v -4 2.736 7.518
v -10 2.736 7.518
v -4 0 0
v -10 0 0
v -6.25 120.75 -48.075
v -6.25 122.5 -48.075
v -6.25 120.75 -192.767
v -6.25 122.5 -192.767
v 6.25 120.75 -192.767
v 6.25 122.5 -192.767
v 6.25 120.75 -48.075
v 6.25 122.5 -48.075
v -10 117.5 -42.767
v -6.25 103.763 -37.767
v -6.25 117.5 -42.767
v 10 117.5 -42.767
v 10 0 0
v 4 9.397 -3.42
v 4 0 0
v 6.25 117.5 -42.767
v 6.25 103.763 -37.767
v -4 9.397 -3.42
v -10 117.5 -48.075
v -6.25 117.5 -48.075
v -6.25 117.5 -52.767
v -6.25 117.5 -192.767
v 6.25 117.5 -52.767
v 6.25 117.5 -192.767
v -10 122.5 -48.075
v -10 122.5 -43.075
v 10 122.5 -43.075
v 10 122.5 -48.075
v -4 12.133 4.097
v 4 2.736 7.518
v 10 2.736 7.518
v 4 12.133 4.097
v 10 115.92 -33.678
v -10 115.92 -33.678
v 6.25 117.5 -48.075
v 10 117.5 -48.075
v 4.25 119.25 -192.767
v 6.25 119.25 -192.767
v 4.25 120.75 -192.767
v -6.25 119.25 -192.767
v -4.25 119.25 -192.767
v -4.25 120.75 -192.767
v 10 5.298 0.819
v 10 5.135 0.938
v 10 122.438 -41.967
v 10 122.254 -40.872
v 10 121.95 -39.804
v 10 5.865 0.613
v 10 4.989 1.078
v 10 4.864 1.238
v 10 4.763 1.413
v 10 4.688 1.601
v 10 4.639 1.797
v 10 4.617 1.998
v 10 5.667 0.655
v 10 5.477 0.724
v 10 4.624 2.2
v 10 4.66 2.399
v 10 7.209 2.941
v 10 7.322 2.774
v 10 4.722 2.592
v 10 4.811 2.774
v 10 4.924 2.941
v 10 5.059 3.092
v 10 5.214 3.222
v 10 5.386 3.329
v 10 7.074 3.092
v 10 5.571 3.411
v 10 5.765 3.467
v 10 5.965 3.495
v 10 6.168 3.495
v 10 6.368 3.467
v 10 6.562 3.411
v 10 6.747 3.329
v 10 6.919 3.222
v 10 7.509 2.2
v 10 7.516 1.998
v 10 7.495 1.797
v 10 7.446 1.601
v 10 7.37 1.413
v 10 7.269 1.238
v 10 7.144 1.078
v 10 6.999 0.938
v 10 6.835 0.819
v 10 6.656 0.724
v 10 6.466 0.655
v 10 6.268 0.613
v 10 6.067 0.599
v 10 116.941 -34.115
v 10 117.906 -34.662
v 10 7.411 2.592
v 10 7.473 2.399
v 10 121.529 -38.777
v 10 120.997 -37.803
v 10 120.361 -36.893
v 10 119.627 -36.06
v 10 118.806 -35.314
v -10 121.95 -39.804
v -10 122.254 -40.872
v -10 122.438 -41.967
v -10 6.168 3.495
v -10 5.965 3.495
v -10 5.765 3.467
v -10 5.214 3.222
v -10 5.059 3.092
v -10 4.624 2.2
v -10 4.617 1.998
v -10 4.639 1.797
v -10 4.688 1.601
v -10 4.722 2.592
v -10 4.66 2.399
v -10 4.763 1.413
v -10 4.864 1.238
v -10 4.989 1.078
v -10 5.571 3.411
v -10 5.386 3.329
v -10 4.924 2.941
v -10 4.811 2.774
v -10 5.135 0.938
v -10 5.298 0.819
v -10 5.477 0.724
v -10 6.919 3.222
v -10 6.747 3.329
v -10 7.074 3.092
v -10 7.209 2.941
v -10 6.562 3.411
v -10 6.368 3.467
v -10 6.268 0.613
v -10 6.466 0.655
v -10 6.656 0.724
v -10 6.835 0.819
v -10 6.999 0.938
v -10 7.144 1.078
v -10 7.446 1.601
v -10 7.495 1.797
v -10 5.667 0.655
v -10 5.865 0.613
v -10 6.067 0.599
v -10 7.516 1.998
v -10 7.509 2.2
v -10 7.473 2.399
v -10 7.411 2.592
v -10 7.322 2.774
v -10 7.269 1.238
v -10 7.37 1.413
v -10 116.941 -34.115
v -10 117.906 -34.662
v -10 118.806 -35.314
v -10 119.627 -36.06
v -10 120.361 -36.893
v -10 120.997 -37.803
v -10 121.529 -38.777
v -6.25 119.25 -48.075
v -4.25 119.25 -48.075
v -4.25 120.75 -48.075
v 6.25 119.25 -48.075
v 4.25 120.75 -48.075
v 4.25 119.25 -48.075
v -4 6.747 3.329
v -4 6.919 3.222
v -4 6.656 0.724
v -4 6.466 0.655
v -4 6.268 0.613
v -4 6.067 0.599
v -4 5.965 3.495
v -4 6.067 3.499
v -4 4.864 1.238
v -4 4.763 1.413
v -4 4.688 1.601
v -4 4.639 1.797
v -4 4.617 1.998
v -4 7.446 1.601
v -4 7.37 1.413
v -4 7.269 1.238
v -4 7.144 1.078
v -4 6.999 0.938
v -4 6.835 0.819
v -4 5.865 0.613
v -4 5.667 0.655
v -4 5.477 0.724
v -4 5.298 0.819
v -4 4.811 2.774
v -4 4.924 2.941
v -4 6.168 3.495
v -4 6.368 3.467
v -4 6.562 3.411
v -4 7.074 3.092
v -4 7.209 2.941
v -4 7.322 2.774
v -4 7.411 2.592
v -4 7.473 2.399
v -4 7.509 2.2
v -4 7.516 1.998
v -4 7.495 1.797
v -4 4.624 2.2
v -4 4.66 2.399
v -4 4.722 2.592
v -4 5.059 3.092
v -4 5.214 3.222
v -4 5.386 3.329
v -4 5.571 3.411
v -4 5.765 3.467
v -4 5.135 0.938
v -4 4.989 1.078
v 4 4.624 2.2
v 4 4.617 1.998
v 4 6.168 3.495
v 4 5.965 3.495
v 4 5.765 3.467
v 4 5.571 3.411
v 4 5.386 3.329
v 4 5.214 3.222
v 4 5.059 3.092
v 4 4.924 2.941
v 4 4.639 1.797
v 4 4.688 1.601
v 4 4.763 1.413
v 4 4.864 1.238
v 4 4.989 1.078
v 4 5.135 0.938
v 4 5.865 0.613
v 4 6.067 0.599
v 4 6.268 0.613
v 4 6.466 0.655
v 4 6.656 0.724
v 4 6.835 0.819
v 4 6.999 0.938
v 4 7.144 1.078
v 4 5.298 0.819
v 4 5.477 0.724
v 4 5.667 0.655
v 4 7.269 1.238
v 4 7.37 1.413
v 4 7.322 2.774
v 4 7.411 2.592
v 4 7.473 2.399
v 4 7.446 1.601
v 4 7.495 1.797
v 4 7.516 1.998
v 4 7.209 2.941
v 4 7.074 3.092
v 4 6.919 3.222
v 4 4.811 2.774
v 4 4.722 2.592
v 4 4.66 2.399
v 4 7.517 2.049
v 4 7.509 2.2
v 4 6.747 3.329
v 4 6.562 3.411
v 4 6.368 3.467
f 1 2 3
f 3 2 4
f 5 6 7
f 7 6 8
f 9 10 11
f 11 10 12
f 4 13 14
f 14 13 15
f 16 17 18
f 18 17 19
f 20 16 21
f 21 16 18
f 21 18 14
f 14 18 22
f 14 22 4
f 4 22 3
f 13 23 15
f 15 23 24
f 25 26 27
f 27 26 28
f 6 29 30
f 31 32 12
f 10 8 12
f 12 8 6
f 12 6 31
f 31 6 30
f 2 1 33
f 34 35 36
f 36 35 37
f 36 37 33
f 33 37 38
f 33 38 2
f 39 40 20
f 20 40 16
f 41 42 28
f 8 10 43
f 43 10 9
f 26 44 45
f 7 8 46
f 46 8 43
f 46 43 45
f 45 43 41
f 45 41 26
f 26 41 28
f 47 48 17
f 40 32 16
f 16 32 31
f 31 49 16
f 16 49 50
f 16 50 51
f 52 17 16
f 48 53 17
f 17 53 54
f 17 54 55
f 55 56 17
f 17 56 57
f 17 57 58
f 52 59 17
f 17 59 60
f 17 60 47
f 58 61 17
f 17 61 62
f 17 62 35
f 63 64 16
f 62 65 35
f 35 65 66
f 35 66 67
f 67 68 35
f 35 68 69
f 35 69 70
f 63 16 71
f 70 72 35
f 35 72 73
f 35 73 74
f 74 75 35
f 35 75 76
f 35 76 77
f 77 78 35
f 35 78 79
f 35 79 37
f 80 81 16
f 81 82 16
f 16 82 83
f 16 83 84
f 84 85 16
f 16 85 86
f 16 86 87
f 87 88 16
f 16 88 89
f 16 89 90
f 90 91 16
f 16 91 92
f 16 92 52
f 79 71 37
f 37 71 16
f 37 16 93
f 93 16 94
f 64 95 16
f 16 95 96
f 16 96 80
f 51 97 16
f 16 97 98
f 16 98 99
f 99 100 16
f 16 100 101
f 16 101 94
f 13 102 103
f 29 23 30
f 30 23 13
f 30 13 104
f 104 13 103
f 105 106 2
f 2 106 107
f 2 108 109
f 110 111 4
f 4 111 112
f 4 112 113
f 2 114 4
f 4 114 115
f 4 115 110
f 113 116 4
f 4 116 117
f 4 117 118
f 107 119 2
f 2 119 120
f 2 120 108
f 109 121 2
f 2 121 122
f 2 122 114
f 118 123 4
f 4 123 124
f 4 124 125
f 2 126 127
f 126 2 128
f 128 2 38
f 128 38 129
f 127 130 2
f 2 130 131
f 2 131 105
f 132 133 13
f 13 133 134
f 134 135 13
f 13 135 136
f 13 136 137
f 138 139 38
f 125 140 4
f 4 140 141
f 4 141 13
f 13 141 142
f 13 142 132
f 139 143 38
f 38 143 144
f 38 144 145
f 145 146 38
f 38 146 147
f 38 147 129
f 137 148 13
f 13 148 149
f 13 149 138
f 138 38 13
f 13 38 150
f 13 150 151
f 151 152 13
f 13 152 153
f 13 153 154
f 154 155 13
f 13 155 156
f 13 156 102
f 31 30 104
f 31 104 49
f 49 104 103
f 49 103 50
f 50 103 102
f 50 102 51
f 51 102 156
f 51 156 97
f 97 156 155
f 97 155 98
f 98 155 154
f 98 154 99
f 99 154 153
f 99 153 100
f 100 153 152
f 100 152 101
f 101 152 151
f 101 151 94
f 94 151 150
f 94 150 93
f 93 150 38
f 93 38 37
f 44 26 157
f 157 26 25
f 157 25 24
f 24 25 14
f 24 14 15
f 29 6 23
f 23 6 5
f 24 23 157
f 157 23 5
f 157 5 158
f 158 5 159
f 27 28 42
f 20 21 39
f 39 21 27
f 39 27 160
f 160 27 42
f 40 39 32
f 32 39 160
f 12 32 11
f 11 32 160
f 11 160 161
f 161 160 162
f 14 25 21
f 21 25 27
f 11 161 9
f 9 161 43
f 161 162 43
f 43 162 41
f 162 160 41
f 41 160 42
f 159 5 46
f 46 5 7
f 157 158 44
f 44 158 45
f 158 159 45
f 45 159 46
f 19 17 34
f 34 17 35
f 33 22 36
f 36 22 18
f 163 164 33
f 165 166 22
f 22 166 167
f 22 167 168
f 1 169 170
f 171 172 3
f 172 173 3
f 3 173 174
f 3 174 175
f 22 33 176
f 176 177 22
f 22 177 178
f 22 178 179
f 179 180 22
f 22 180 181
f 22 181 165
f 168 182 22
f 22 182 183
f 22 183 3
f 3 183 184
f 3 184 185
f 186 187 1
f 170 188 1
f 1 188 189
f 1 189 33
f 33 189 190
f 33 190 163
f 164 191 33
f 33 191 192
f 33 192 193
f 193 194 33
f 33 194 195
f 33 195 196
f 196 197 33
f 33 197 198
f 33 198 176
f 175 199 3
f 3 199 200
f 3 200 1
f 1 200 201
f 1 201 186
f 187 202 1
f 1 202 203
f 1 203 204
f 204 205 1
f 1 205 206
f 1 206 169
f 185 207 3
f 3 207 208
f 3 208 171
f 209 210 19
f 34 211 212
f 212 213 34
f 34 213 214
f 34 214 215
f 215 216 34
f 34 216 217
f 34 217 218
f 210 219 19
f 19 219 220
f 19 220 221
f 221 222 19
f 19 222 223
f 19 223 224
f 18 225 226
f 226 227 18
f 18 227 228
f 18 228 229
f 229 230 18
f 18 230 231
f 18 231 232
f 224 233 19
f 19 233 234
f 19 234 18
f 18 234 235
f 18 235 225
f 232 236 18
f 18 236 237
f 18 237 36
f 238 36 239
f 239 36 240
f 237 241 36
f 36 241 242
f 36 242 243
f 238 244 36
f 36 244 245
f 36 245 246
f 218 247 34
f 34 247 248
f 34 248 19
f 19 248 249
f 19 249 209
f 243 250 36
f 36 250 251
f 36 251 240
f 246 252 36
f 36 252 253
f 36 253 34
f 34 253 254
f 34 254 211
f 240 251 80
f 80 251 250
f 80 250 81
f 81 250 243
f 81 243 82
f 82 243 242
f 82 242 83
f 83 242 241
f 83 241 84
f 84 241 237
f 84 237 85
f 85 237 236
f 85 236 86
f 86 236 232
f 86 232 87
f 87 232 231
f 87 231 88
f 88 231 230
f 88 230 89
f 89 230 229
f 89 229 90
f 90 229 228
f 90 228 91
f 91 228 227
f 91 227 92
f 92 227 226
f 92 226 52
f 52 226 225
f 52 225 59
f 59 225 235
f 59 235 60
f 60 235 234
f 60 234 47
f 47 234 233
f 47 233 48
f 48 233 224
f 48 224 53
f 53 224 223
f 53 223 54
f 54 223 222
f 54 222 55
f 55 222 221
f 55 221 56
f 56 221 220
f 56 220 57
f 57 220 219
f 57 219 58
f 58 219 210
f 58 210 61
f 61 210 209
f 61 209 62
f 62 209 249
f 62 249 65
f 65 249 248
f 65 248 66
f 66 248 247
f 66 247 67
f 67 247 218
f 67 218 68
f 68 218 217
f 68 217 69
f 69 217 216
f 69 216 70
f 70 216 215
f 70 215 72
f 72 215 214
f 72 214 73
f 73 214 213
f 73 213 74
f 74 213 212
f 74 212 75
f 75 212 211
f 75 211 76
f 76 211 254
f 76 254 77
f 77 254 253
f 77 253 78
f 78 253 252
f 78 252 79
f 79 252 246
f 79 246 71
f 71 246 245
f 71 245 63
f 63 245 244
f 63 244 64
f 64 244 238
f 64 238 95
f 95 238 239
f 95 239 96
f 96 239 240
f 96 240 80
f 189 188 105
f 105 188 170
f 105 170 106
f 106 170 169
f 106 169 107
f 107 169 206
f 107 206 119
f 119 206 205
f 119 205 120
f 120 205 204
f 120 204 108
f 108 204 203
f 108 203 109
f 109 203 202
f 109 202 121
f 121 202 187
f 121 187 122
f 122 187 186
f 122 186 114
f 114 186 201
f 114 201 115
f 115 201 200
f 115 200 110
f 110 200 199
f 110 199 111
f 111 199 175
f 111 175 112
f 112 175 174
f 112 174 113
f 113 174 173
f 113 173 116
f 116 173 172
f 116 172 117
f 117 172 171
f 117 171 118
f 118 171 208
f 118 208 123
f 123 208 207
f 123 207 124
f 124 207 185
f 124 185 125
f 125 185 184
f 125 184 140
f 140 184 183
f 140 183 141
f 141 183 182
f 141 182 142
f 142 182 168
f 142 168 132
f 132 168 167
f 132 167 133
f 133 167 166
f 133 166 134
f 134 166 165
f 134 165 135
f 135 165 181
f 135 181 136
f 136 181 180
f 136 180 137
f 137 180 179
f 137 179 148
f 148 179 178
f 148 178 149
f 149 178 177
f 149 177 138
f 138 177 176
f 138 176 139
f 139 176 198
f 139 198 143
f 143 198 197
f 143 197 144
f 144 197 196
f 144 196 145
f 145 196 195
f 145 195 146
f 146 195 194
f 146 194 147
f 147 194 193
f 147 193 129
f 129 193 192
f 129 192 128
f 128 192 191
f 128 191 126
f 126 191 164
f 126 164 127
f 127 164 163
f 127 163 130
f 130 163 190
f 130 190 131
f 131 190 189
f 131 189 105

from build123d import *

# Parameters (mm, degrees)
BOSS_EXTRUDE1_DEPTH = 10
CHAMFER1_SIZE       = 7.802060087
CHAMFER1_SIZE_2     = 10
BOSS_EXTRUDE2_DEPTH = 20
SKETCH7_R           = 1.5
CUT_EXTRUDE1_DEPTH  = 20
CUT_EXTRUDE3_DEPTH  = 20
FILLET5_R           = 20
FILLET6_R           = 10
SKETCH10_W          = 5.3
SKETCH10_H          = 4.24
CUT_EXTRUDE4_DEPTH  = 273.805653344
SKETCH11_W          = 3.75
SKETCH11_H          = 144.691495626
CUT_EXTRUDE5_DEPTH  = 370.011076387
BOSS_EXTRUDE4_DEPTH = 12.5
SKETCH12_W          = 2
SKETCH12_H          = 1.5
CUT_EXTRUDE6_DEPTH  = 144.691496
CUT_EXTRUDE7_DEPTH  = 273.805653344
SKETCH15_W          = 8
SKETCH15_H          = 10
CUT_EXTRUDE8_DEPTH  = 234.574560204
SKETCH16_R          = 1.45
CUT_EXTRUDE9_DEPTH  = 230.270963046


with BuildPart() as part:
    # Sketch2 → Boss-Extrude1 (new, symmetric)
    with BuildSketch(Plane(origin=(0, 0, 0), x_dir=(0, 0, -1), z_dir=(1, 0, 0))):
        Polygon((36.072931518, 122.5), (-51.279924706, -117.5), (-51.279924706, -192), (-46.279924706, -192), (-46.279924706, -151.5), (-39.679924706, -151.5), (-39.679924706, -192), (-35.679924706, -192), (-35.679924706, -117.5), (-42.766502526, -117.5), (42.766502526, 117.5), (192.766502526, 117.5), (192.766502526, 122.5), align=None)
    extrude(amount=BOSS_EXTRUDE1_DEPTH, both=True)

    # Chamfer1
    # the kernel refuses this chamfer: 10, 7.802060087 mm, written as the material it adds along each edge
    with BuildSketch(Plane(origin=(-10, -117.5, 42.766502526), x_dir=(0, 0.9542611885293297, -0.298974219735734), z_dir=(1, 0, 0))) as chamfer1_piece_1_section:
        Polygon((CHAMFER1_SIZE * 0.998967402661, -CHAMFER1_SIZE * 0.0454326803806), (CHAMFER1_SIZE_2 * 0.298974219736, -CHAMFER1_SIZE_2 * 0.954261188529), (0, 0), align=None)
    chamfer1_piece_1 = extrude(amount=20, mode=Mode.PRIVATE)
    chamfer1_piece_1 = split(chamfer1_piece_1, bisect_by=Plane(origin=(0, -114.855220314, 35.679924706), z_dir=(0, 0, 1)), keep=Keep.TOP, mode=Mode.PRIVATE)
    add(chamfer1_piece_1)

    # Sketch6 → Boss-Extrude2 (add)
    with BuildSketch(Plane(origin=(10, 0, 0), x_dir=(0, 0, -1), z_dir=(1, 0, 0))):
        Polygon((-51.279924706, -180), (-66.279924706, -192), (-51.279924706, -192), align=None)
        Polygon((-35.679924706, -192), (-20.679924706, -192), (-35.679924706, -180), align=None)
    extrude(amount=-BOSS_EXTRUDE2_DEPTH)

    # Sketch7 → Cut-Extrude1 (cut)
    with BuildSketch(Plane(origin=(0, -192, 0), x_dir=(-1, 0, 0), z_dir=(0, -1, 0))):
        with Locations(Location((0, -56.279924706, 0), (0, 0, 90))):
            Circle(SKETCH7_R)
        with Locations(Location((0, -30.179924706, 0), (0, 0, 90))):
            Circle(SKETCH7_R)
    extrude(amount=-CUT_EXTRUDE1_DEPTH, mode=Mode.SUBTRACT)

    # Sketch9 → Cut-Extrude3 (cut)
    with BuildSketch(Plane(origin=(0, -187, 0), x_dir=(-1, 0, 0), z_dir=(0, -1, 0))):
        Polygon((2.75, -57.867637946), (2.75, -54.692211466), (0, -53.104498226), (-2.75, -54.692211466), (-2.75, -57.867637946), (0, -59.455351187), align=None)
        Polygon((2.75, -31.767637946), (2.75, -28.592211466), (0, -27.004498226), (-2.75, -28.592211466), (-2.75, -31.767637946), (0, -33.355351187), align=None)
    extrude(amount=-CUT_EXTRUDE3_DEPTH, mode=Mode.SUBTRACT)

    # Fillet5
    fillet5_edges = [part.edges().sort_by_distance(p)[0] for p in [
        (0, -117.5, 51.279924706),
    ]]
    fillet(fillet5_edges, radius=FILLET5_R)

    # Fillet6
    fillet6_edges = [part.edges().sort_by_distance(p)[0] for p in [
        (0, 122.5, -36.072931518),
    ]]
    fillet(fillet6_edges, radius=FILLET6_R)

    # Sketch10 → Cut-Extrude4 (cut, through all)
    with BuildSketch(Plane(origin=(10, 0, 0), x_dir=(0, 0, -1), z_dir=(1, 0, 0))):
        with Locations((-63.629924706, -189.88)):
            Rectangle(SKETCH10_W, SKETCH10_H)
        with Locations((-23.329924706, -189.88)):
            Rectangle(SKETCH10_W, SKETCH10_H)
    extrude(amount=-CUT_EXTRUDE4_DEPTH, mode=Mode.SUBTRACT)

    # Sketch11 → Cut-Extrude5 (cut, through all)
    with BuildSketch(Plane(origin=(0, 122.5, 0), x_dir=(1, 0, 0), z_dir=(0, 1, 0))):
        with Locations((-8.125, 120.420754713)):
            Rectangle(SKETCH11_W, SKETCH11_H)
        with Locations((8.125, 120.420754713)):
            Rectangle(SKETCH11_W, SKETCH11_H)
    extrude(amount=-CUT_EXTRUDE5_DEPTH, mode=Mode.SUBTRACT)

    # Sketch13 → Boss-Extrude4 (add)
    with BuildSketch(Plane(origin=(6.25, 0, 0), x_dir=(0, 0, -1), z_dir=(1, 0, 0))):
        Polygon((52.766502526, 117.5), (37.766502526, 103.762612903), (42.766502526, 117.5), align=None)
    extrude(amount=-BOSS_EXTRUDE4_DEPTH)

    # Sketch12 → Cut-Extrude6 (cut)
    with BuildSketch(Plane(origin=(0, 0, -192.766502526), x_dir=(-1, 0, 0), z_dir=(0, 0, -1))):
        with Locations((-5.25, 120)):
            Rectangle(SKETCH12_W, SKETCH12_H)
        with Locations((5.25, 120)):
            Rectangle(SKETCH12_W, SKETCH12_H)
    extrude(amount=-CUT_EXTRUDE6_DEPTH, mode=Mode.SUBTRACT)

    # Sketch14 → Cut-Extrude7 (cut, through all)
    with BuildSketch(Plane(origin=(10, 0, 0), x_dir=(0, 0, -1), z_dir=(1, 0, 0))):
        Polygon((-7.517540966, 2.736161147), (0, 0), (0, -210.65241273), (-80.454600392, -210.65241273), (-80.454600392, -132.997640023), align=None)
    extrude(amount=-CUT_EXTRUDE7_DEPTH, mode=Mode.SUBTRACT)

    # Sketch15 → Cut-Extrude8 (cut, through all)
    with BuildSketch(Plane(origin=(0, 2.736161147, 7.517540966), x_dir=(1, 0, 0), z_dir=(0, 0.3420201433256657, 0.9396926207859096))):
        with Locations((0, 5)):
            Rectangle(SKETCH15_W, SKETCH15_H)
    extrude(amount=-CUT_EXTRUDE8_DEPTH, mode=Mode.SUBTRACT)

    # Sketch16 → Cut-Extrude9 (cut, through all)
    with BuildSketch(Plane(origin=(10, 0, 0), x_dir=(0, 0, -1), z_dir=(1, 0, 0))):
        with Locations((-2.048669767, 6.066543677)):
            Circle(SKETCH16_R)
    extrude(amount=-CUT_EXTRUDE9_DEPTH, mode=Mode.SUBTRACT)


solid = part.part
